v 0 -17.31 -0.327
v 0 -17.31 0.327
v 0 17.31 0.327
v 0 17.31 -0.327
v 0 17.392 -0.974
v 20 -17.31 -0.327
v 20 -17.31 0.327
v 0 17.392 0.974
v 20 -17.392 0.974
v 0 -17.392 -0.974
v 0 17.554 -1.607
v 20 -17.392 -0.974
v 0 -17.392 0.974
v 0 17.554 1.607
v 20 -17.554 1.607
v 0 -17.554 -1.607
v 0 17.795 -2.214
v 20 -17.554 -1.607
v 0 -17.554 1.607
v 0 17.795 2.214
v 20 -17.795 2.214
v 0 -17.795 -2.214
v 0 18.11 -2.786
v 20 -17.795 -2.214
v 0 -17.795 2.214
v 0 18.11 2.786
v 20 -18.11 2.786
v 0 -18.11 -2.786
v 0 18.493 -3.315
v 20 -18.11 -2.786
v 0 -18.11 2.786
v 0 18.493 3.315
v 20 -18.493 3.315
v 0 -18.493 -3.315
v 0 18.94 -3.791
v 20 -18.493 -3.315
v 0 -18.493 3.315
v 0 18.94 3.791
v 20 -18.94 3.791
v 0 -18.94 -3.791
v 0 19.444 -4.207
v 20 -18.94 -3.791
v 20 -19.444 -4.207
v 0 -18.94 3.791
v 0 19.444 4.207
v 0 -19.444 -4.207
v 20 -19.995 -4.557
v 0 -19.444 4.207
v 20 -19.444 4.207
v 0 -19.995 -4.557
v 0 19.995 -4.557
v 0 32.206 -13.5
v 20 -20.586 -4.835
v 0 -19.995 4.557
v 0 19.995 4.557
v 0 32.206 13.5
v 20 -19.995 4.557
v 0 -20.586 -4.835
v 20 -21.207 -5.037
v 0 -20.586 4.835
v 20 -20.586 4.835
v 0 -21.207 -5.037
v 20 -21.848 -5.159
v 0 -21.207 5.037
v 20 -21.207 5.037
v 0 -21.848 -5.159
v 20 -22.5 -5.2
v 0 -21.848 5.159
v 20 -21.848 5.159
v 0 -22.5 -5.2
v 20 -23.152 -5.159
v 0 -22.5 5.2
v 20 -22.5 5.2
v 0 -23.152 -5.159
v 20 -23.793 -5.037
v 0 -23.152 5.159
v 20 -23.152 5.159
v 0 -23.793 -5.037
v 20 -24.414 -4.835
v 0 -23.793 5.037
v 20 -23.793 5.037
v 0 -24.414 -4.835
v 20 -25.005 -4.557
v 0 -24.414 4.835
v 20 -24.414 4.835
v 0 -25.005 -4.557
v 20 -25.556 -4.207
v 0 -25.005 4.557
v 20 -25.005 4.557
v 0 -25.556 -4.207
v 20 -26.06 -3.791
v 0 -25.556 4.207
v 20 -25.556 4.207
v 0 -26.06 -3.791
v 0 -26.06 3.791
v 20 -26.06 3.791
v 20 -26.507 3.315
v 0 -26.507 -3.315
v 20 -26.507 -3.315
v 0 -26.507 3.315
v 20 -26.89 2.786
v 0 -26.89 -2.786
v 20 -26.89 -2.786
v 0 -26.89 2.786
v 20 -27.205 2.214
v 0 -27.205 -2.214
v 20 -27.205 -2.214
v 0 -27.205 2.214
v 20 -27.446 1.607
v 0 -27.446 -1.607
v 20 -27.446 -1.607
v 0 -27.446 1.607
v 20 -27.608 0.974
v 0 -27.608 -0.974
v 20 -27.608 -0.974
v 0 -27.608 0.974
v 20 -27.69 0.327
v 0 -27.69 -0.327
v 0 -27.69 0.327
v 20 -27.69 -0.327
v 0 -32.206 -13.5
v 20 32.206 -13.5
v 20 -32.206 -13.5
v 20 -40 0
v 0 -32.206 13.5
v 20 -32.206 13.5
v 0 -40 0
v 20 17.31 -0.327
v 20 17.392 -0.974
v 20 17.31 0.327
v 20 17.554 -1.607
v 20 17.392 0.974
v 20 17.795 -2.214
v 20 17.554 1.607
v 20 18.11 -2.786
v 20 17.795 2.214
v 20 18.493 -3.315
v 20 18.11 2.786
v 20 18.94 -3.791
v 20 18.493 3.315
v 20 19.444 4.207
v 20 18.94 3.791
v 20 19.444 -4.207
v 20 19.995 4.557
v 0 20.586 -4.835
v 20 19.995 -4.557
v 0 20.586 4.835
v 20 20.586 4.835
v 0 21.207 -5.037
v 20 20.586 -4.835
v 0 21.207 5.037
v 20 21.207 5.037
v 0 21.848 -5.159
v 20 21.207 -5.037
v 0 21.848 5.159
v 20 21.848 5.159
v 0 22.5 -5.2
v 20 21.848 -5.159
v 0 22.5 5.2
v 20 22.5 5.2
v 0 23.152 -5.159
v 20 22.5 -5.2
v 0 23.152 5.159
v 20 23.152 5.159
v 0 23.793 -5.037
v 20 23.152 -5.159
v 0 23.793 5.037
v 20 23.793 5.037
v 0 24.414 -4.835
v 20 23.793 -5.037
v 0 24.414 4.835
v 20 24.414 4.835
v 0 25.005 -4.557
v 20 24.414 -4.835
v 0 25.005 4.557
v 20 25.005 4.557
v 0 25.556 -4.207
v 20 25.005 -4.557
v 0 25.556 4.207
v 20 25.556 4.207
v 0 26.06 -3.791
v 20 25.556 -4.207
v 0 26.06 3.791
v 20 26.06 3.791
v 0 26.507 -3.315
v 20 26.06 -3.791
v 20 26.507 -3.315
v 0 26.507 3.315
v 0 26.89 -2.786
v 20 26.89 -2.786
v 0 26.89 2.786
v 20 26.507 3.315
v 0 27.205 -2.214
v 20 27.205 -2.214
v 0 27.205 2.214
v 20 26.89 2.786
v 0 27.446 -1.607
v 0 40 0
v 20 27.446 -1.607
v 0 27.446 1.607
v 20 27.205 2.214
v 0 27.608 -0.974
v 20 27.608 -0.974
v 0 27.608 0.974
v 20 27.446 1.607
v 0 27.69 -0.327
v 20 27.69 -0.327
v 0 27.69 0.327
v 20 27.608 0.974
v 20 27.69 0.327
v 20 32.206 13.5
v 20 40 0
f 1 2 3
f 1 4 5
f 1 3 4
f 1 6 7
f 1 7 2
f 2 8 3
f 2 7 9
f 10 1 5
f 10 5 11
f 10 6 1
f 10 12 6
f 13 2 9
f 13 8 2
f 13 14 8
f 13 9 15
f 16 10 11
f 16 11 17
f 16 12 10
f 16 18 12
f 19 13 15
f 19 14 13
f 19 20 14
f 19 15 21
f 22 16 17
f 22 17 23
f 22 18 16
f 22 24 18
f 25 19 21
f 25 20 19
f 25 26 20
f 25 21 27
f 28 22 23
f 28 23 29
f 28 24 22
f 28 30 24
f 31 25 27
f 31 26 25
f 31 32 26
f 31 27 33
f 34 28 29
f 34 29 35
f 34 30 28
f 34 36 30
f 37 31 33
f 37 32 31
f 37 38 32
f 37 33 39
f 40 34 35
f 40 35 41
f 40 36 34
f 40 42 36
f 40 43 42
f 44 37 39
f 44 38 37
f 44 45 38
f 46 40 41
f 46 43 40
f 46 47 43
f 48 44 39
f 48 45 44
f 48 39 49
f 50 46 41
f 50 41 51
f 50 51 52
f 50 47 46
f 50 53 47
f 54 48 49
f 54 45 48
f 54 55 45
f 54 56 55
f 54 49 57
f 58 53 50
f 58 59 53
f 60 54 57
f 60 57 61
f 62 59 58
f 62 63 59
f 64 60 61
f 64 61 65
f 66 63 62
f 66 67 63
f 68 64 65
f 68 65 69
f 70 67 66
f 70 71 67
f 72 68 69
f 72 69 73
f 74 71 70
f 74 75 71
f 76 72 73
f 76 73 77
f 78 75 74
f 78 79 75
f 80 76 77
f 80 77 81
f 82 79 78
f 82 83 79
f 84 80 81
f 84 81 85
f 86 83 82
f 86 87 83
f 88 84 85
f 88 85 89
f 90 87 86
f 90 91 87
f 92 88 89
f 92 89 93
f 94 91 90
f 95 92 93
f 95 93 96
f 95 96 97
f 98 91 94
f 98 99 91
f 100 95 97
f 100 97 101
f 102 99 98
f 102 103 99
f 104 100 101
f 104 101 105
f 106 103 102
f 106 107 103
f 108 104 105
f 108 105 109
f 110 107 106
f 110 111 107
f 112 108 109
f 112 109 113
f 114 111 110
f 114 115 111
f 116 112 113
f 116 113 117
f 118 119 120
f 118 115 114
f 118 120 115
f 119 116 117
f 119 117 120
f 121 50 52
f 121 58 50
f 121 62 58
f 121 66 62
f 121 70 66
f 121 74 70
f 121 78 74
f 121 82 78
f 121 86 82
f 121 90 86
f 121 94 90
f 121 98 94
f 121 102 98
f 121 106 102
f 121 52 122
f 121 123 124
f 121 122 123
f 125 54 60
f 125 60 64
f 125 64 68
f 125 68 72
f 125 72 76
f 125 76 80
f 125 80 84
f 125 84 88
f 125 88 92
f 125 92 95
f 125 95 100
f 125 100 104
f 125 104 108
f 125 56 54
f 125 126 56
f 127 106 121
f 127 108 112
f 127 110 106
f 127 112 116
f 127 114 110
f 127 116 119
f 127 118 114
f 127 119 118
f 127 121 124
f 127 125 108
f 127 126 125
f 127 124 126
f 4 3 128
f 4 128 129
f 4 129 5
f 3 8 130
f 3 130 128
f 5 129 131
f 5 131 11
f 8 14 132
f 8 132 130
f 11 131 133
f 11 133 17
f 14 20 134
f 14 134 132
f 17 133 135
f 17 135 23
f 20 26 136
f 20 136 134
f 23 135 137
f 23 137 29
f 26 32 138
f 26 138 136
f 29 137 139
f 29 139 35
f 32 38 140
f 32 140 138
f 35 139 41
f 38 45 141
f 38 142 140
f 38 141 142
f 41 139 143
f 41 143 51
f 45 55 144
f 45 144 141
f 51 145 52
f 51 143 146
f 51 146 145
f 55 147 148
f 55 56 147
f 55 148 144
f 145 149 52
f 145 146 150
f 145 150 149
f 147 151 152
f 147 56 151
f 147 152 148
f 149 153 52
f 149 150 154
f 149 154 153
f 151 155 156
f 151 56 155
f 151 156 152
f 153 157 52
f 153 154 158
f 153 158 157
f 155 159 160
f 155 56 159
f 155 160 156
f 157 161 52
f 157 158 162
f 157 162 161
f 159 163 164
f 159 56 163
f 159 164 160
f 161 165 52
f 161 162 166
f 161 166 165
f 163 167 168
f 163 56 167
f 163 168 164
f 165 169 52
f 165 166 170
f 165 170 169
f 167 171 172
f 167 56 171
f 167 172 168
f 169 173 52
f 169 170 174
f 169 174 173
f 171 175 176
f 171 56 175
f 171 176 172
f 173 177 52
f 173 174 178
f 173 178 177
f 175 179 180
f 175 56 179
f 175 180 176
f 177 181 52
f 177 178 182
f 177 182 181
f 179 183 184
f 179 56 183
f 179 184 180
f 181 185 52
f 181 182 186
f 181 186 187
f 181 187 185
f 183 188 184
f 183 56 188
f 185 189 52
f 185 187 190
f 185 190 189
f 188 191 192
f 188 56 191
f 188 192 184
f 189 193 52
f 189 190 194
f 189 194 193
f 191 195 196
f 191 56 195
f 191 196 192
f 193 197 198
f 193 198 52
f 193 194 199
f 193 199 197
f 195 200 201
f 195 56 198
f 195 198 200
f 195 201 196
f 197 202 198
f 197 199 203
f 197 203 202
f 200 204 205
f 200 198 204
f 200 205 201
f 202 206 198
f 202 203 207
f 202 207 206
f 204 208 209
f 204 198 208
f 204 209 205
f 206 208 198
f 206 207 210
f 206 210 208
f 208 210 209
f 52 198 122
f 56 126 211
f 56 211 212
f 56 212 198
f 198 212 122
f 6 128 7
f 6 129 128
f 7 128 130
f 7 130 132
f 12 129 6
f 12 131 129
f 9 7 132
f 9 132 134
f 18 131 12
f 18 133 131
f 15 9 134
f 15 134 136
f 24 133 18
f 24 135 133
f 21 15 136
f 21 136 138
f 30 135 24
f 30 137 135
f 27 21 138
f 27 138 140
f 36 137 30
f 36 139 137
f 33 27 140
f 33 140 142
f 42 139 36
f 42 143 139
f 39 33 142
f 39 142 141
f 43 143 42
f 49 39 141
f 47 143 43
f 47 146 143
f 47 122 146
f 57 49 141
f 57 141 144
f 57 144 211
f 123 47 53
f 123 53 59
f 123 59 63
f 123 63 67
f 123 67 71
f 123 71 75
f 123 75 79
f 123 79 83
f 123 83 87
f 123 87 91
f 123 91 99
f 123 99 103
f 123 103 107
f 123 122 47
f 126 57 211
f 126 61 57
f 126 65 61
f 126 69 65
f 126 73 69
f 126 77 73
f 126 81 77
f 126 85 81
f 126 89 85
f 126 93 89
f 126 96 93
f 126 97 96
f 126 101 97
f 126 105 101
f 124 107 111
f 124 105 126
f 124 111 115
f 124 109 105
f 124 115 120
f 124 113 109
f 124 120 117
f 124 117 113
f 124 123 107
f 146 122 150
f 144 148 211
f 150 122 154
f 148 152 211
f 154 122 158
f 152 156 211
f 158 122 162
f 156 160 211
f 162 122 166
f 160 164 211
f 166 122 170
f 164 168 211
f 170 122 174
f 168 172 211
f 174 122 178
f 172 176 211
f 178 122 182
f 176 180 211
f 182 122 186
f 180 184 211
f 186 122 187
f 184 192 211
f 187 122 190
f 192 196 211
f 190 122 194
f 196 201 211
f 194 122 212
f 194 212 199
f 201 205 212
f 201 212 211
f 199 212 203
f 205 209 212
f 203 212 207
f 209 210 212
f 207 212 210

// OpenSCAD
include <../parameters.scad>


module beam_side_holder(l = 20){
    difference(){
        translate([l/2, 0, 0])
            cube([l, beam_width, beam_thickness], center = true);

        for (i=[0,2])
            translate([-global_clearance/2, 0, 0])
                rotate([90*i, 0, 0])
                    translate([0, -beam_width/2, 0]){
                        rotate([90-beam_edge_angle, 0, 0])
                            translate([0, 0, 0])
                                cube([l+global_clearance, 80, 50]);

                        rotate([180+beam_edge_angle, 0, 0])
                            translate([0, 0, 0])
                                cube([l+global_clearance, 80, 50]);
                    }

        translate([-global_clearance/2, -beam_main_pipe_distance/2, 0])
            rotate([0, 90, 0])
                cylinder(d = beam_main_pipe_thickness, h = l + global_clearance, $fn = 50);

        translate([-global_clearance/2, beam_main_pipe_distance/2, 0])
            rotate([0, 90, 0])
                cylinder(d = beam_main_pipe_thickness, h = l + global_clearance, $fn = 50);
    }
}

module 888_1006(){
    beam_side_holder();
}

888_1006();
